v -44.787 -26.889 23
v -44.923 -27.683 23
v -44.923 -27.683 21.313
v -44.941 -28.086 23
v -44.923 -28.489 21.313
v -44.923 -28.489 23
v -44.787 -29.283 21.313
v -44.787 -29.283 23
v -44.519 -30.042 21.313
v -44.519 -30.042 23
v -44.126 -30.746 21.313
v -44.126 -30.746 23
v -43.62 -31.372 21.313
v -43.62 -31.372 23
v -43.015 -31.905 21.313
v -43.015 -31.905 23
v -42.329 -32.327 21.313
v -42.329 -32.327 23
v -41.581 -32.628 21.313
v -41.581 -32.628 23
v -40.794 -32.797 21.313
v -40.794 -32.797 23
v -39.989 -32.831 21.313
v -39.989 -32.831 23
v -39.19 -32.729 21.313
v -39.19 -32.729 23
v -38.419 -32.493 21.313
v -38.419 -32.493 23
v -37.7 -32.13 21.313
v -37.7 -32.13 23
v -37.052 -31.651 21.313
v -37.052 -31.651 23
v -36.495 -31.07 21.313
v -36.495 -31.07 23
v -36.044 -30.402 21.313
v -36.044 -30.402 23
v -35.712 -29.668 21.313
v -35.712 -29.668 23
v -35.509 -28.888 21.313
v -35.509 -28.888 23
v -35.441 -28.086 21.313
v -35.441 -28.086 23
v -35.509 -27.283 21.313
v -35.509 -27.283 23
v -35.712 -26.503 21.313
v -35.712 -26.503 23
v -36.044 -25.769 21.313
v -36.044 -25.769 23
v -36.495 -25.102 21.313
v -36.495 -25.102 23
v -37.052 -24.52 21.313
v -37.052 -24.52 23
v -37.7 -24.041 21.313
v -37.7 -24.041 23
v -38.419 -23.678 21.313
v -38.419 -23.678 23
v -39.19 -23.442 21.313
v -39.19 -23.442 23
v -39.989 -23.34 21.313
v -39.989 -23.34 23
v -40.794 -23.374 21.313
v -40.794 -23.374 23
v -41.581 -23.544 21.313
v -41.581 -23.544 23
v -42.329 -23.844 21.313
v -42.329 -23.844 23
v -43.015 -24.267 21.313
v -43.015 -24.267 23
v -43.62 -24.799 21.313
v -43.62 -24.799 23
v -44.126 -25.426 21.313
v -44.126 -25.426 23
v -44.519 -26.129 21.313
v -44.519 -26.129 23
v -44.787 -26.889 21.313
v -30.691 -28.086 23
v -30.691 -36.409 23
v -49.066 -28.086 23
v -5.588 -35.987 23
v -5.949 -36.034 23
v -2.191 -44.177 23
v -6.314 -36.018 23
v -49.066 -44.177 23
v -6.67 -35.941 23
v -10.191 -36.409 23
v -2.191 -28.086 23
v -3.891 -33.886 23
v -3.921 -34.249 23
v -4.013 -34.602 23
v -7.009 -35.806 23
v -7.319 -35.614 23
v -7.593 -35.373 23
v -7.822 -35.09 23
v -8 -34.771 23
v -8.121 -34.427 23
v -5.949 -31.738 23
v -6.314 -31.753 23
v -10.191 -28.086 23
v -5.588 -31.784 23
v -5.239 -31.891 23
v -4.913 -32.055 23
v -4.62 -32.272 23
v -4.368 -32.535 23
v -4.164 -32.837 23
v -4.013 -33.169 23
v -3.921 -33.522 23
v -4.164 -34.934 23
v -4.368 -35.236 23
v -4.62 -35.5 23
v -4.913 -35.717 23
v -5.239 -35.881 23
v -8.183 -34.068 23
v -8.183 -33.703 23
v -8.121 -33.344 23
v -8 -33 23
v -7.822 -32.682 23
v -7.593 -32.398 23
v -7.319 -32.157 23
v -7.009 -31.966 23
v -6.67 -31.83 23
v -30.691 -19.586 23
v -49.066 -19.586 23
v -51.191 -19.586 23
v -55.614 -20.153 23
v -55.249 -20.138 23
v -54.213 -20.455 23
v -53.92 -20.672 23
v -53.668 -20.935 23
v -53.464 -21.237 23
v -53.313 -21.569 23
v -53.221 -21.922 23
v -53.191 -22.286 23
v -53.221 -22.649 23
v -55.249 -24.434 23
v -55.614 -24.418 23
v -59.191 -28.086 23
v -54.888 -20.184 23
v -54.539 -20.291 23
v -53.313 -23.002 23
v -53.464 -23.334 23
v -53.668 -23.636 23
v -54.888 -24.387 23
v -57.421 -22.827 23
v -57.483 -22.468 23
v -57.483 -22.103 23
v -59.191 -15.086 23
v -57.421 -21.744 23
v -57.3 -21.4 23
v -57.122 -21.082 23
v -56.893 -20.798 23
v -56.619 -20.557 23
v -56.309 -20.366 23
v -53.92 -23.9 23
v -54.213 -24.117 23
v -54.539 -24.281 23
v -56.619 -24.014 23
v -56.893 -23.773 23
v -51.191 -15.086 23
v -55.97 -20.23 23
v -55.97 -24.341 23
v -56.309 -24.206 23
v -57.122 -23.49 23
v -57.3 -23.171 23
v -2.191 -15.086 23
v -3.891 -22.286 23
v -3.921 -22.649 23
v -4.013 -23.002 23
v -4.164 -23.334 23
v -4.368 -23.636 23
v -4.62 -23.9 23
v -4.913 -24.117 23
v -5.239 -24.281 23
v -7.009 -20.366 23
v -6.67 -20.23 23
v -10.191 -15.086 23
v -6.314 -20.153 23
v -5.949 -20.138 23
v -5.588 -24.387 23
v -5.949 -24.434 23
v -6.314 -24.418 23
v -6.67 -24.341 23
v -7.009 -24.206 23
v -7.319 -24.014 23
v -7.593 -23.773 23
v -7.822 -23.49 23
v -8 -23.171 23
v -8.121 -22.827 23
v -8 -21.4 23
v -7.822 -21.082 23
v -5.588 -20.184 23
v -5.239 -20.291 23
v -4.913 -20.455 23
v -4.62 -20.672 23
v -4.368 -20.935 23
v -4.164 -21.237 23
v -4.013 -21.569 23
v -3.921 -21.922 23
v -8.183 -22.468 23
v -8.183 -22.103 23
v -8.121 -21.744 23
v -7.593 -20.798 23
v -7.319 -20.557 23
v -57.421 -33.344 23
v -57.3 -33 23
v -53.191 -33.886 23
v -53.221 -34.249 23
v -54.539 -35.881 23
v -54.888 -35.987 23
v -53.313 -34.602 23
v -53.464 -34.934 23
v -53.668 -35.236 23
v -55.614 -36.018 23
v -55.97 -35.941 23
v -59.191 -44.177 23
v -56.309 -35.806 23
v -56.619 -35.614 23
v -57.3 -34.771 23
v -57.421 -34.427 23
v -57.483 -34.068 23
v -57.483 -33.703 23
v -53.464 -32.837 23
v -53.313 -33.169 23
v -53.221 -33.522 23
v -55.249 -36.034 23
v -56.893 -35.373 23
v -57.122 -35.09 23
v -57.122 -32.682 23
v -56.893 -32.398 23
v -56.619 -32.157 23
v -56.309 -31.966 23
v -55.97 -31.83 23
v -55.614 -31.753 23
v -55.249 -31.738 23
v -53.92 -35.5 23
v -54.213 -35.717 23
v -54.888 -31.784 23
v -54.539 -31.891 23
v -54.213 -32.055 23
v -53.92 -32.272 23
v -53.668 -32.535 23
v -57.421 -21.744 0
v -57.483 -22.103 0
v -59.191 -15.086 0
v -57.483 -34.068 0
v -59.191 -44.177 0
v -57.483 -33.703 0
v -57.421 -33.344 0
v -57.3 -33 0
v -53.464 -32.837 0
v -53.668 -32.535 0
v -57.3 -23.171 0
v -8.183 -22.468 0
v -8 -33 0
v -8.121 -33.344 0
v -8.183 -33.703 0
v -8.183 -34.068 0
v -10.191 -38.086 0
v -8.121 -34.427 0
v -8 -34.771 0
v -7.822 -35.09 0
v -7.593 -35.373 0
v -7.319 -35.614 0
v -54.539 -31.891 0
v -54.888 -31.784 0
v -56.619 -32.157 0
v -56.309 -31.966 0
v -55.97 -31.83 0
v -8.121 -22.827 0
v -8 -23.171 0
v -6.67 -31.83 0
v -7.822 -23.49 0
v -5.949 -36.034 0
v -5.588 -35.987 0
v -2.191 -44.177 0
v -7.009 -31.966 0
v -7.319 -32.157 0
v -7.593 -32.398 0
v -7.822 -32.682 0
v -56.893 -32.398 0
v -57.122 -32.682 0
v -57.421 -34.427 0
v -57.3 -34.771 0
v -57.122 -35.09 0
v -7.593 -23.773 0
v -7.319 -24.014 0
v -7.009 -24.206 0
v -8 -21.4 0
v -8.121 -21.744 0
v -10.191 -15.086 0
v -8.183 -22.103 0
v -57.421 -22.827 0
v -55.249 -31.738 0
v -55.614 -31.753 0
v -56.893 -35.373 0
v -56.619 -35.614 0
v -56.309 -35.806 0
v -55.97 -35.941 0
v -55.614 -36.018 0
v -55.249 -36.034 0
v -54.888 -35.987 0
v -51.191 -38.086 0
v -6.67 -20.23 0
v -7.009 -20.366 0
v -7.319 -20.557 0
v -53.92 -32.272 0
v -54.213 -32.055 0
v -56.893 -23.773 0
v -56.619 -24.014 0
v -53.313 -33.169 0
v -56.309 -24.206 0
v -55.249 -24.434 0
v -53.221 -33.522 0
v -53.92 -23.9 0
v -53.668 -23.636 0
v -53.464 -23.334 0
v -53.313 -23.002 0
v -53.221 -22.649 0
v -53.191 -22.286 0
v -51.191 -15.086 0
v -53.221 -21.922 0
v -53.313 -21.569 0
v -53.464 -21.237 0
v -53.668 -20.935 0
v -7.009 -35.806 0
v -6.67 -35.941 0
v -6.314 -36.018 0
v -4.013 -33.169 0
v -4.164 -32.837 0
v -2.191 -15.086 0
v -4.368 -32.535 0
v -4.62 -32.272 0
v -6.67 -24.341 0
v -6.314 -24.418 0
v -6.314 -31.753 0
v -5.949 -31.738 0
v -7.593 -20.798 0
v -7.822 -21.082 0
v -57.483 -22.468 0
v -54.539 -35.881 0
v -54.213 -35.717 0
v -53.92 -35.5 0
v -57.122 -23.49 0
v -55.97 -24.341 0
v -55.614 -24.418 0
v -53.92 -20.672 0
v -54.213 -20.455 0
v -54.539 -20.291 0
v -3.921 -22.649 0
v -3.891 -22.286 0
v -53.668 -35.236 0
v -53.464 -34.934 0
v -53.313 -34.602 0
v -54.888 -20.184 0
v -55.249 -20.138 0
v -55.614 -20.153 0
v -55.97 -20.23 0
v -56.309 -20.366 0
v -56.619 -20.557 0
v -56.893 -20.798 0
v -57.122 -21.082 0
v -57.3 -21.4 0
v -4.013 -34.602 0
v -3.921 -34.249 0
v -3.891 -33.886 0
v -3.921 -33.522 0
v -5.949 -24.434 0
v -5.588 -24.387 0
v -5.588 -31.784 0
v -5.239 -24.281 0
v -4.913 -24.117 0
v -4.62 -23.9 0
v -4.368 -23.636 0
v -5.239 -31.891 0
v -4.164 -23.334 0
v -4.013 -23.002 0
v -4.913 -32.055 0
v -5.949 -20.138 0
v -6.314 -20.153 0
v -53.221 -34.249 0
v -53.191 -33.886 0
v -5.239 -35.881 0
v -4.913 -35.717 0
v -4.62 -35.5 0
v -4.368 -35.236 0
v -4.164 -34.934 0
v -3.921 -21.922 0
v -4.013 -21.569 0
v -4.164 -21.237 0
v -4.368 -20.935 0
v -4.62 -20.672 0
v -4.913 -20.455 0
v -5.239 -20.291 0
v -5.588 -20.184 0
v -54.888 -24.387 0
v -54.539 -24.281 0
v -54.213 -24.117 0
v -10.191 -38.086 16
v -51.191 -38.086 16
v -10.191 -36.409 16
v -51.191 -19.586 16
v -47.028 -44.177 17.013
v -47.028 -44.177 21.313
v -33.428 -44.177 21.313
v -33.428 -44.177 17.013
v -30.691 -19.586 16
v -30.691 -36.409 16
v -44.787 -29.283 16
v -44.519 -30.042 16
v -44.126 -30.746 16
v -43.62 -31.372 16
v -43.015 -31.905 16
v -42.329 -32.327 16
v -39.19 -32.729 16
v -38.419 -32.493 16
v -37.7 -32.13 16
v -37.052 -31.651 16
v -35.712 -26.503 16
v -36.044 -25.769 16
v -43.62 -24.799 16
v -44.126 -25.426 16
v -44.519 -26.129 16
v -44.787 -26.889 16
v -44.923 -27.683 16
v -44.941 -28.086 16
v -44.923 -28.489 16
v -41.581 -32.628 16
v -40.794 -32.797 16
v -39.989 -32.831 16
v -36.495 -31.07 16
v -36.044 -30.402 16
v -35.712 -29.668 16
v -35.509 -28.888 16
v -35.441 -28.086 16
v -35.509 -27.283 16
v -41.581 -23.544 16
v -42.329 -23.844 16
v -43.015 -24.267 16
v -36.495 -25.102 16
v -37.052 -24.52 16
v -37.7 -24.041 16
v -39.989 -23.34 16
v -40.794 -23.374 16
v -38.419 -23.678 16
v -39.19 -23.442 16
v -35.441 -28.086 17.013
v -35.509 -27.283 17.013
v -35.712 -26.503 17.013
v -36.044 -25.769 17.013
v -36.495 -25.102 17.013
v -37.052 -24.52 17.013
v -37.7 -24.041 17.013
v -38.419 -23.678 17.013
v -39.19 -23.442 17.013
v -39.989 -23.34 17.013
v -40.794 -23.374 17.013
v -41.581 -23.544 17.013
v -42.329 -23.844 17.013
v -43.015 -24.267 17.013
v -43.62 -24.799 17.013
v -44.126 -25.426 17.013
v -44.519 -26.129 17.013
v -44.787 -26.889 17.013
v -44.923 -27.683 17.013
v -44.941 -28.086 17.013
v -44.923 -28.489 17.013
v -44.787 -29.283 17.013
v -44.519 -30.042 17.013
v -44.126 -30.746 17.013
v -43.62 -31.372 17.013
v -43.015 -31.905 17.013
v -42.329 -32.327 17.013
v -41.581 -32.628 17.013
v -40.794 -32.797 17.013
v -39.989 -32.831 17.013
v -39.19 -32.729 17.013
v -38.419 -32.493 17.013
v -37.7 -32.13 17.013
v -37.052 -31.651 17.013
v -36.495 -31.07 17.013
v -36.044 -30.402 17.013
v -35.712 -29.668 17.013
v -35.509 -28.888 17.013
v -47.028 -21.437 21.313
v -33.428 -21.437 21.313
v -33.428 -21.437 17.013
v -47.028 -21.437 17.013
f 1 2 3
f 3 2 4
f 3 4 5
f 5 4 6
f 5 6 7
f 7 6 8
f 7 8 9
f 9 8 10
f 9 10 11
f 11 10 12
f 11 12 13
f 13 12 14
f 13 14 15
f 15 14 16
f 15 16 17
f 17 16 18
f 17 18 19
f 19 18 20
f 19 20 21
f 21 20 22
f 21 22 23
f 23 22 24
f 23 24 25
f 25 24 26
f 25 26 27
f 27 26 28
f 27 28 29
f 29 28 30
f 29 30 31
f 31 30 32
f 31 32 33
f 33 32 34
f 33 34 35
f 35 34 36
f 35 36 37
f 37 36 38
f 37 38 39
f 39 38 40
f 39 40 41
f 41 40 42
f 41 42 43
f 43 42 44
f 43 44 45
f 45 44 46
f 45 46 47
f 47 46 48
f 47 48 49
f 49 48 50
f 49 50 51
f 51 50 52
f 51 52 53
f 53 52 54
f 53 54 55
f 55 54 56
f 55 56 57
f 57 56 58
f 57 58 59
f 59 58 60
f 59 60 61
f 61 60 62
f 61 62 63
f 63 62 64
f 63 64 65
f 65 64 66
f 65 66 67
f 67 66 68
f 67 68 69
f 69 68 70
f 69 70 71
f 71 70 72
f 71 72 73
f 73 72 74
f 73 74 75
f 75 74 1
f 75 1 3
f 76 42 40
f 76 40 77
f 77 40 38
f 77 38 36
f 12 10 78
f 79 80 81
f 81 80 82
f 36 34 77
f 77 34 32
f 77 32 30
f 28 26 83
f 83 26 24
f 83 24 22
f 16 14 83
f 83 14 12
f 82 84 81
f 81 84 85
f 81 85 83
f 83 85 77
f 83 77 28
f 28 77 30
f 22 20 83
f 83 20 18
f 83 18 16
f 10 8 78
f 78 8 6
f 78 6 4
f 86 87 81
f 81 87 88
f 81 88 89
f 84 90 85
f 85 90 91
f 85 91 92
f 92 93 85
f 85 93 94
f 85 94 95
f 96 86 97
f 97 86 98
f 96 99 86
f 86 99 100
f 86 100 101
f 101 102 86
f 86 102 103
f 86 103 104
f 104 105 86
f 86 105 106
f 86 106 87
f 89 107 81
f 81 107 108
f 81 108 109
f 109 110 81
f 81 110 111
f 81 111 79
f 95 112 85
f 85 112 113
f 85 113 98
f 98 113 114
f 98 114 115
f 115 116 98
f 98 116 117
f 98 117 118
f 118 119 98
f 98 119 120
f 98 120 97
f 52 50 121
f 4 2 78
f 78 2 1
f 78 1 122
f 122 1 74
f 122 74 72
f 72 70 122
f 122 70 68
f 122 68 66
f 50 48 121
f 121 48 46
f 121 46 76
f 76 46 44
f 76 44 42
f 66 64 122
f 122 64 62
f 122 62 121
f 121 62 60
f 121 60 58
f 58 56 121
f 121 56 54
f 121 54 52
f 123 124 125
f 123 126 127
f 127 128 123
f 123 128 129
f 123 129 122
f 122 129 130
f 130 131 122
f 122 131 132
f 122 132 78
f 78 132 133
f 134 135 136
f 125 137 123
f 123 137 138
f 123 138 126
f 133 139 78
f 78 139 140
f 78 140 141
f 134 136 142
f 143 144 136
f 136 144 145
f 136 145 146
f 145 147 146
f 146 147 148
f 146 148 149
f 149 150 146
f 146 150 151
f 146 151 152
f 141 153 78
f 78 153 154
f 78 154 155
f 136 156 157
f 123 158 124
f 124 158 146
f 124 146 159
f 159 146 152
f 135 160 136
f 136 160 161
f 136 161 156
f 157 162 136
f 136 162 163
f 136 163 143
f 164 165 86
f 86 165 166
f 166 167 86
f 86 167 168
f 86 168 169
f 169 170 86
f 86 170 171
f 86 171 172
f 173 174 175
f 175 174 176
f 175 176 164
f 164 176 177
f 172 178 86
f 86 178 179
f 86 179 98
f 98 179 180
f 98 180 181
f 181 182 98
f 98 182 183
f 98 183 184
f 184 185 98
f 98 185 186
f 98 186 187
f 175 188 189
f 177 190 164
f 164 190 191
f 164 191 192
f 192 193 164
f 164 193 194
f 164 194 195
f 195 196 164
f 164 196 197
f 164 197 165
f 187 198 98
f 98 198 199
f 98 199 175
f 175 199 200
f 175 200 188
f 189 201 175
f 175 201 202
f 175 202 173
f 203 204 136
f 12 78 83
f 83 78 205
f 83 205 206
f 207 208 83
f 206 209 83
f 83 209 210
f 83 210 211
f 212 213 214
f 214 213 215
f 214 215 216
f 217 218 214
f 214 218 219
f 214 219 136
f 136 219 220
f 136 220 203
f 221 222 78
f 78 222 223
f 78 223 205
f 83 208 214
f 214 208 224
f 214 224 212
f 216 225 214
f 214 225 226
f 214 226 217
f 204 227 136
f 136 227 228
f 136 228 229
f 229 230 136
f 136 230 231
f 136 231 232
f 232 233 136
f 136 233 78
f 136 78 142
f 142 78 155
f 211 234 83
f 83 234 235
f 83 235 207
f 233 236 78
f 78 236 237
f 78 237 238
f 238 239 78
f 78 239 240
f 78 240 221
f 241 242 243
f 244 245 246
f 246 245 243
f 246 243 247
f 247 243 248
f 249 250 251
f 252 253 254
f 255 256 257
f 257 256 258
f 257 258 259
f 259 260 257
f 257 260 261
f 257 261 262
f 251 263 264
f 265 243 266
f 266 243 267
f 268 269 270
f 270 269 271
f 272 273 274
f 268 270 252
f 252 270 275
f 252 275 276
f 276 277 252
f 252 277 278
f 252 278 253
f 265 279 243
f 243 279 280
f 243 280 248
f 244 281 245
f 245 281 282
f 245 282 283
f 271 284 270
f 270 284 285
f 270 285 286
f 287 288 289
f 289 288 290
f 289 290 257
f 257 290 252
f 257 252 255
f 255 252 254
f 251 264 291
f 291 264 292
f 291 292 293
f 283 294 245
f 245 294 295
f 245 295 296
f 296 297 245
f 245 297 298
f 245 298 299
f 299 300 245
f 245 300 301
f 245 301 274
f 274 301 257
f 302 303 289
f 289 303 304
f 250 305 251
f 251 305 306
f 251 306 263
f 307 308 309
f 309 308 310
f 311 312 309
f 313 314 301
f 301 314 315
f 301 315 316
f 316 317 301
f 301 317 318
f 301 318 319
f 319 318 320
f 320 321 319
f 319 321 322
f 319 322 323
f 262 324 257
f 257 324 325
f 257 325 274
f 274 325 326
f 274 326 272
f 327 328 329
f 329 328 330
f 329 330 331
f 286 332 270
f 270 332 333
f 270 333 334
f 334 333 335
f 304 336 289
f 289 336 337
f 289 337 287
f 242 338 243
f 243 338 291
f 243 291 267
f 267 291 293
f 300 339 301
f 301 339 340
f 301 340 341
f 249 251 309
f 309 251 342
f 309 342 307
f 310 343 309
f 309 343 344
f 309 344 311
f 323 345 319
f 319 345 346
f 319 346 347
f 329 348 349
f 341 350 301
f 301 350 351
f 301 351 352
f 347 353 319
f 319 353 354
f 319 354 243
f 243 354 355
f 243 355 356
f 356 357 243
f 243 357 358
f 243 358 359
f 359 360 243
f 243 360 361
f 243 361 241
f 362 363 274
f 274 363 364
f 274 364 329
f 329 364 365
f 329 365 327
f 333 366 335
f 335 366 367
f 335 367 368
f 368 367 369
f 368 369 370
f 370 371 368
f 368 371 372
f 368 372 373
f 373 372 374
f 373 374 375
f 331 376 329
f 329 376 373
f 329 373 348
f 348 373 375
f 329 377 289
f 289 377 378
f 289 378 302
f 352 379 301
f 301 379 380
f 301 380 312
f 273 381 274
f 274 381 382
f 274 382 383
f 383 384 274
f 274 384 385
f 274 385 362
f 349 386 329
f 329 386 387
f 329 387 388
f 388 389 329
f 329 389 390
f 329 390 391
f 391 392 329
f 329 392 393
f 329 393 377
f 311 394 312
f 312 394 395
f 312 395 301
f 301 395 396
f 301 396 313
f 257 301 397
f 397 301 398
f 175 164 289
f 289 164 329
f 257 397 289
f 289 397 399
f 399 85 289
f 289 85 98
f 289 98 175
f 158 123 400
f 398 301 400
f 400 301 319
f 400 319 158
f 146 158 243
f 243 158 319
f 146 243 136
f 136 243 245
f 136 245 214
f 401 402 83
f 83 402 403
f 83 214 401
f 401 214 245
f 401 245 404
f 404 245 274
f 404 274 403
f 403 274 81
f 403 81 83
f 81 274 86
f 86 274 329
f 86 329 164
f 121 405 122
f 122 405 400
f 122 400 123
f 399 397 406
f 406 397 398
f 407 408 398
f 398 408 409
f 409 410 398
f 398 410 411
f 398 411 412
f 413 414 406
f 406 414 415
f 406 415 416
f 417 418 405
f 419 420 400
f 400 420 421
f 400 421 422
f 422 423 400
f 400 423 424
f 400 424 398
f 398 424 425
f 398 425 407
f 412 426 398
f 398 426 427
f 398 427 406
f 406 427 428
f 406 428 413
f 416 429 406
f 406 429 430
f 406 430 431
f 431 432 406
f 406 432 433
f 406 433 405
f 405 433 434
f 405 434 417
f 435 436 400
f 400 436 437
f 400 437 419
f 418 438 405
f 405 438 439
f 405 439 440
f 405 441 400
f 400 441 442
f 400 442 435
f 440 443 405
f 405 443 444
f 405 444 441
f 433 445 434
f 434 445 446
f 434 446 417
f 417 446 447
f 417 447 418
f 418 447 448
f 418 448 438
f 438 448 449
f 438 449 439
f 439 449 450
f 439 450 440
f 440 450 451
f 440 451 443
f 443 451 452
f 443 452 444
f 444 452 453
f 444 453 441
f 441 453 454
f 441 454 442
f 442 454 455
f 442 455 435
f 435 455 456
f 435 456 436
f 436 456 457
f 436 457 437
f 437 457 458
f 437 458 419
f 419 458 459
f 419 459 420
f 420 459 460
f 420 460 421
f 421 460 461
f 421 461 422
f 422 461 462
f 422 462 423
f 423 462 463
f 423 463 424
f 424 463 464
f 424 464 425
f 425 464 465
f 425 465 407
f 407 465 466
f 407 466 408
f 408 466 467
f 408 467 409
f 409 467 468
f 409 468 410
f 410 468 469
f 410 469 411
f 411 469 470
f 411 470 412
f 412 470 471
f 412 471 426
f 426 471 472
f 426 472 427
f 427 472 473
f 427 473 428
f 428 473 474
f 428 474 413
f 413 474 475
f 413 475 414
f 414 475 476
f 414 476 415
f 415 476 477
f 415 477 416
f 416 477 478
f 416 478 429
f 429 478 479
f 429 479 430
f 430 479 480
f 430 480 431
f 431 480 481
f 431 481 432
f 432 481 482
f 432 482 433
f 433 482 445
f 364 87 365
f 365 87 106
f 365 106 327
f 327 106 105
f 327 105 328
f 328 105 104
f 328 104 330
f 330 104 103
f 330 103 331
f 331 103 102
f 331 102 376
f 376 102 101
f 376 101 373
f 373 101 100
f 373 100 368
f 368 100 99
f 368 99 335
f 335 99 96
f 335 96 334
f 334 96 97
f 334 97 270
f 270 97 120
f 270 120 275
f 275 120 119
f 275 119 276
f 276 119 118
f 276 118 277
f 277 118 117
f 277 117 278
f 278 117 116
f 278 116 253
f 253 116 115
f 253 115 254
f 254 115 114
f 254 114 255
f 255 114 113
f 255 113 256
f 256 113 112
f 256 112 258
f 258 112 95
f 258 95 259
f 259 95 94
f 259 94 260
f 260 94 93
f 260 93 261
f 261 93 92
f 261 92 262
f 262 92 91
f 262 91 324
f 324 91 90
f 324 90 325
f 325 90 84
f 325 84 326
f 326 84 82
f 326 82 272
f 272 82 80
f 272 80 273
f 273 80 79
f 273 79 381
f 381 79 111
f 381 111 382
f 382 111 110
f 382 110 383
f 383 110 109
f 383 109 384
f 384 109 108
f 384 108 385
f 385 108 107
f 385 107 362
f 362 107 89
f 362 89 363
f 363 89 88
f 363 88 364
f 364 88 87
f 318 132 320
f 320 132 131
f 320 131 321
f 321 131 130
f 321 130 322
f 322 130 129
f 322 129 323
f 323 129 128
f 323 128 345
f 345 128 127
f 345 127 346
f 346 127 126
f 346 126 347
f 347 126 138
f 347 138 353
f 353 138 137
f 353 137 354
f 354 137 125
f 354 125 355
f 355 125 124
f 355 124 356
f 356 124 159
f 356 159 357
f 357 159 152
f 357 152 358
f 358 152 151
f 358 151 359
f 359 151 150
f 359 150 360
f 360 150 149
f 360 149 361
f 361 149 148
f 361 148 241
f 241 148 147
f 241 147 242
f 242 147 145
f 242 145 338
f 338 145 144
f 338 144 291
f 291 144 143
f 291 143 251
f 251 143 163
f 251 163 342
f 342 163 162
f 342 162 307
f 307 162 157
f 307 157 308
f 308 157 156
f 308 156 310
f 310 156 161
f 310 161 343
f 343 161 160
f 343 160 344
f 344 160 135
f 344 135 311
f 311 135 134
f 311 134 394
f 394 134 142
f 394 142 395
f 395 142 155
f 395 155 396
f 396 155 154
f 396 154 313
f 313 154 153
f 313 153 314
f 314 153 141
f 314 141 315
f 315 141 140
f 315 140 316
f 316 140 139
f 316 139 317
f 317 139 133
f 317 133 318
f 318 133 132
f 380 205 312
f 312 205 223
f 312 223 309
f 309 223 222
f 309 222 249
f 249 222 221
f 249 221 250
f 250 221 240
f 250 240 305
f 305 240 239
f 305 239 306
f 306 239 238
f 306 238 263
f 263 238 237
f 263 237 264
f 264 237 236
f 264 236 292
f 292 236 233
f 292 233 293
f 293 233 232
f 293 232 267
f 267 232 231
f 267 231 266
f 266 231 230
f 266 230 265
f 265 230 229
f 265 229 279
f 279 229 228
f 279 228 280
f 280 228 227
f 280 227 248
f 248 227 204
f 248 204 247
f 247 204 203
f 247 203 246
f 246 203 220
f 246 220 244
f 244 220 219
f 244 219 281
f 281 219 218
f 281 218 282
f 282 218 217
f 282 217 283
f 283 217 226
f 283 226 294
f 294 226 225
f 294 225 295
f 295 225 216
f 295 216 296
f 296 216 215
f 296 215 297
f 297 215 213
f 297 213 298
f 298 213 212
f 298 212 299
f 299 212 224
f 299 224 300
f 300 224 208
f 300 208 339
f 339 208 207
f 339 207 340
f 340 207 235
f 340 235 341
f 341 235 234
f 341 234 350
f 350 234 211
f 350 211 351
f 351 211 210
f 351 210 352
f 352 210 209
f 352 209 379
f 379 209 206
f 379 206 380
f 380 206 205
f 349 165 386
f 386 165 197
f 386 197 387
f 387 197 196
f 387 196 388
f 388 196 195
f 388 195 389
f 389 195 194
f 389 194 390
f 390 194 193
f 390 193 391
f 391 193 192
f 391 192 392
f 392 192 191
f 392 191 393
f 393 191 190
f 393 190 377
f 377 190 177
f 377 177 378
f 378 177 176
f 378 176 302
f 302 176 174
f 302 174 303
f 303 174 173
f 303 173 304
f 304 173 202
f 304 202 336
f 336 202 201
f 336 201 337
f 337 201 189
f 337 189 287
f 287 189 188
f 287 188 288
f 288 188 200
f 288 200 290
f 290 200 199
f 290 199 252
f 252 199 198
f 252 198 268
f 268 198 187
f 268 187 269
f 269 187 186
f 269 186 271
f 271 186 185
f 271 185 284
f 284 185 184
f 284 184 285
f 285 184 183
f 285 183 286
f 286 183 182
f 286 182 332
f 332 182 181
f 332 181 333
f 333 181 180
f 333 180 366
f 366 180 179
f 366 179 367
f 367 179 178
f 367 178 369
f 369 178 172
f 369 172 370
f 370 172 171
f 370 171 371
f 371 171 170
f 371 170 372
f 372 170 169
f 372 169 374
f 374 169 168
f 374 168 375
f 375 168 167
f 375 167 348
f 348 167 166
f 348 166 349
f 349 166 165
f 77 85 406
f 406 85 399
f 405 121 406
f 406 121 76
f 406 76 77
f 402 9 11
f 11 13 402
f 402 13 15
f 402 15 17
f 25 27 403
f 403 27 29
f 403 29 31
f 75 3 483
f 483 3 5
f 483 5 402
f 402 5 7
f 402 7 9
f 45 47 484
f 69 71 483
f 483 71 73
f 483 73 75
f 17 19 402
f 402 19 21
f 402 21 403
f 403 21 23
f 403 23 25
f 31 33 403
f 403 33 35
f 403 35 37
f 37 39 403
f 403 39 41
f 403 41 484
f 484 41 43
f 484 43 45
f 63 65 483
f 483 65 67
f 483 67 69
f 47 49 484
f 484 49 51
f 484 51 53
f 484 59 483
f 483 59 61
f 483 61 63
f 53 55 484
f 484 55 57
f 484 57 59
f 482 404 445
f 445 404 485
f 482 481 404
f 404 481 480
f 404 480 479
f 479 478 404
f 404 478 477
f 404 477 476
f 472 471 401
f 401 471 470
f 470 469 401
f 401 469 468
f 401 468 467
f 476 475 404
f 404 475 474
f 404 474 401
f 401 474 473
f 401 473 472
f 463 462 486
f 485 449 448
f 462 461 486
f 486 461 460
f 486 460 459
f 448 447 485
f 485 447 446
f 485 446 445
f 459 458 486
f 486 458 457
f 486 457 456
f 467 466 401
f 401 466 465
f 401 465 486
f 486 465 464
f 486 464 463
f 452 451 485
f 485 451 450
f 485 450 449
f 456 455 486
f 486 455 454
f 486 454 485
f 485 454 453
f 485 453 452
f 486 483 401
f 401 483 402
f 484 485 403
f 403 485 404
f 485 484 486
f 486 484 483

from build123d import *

# Parameters (mm, degrees)
EXTRUDE_1_DEPTH     = 23
SKETCH_5_R          = 2.7
SKETCH_5_R_2        = 4.75
EXTRUDE_6_DEPTH     = 7
SKETCH_6_R          = 2.15
CUT_EXTRUDE_2_DEPTH = 78.35709986
SKETCH_8_W          = 20.5
SKETCH_8_H          = 16.823085553
CUT_EXTRUDE_4_DEPTH = 7
SKETCH_14_W         = 13.6
SKETCH_14_H         = 4.3
CUT_EXTRUDE_7_DEPTH = 22.74


with BuildPart() as part:
    # Эскиз1 → Бобышка-Вытянуть1 (new body)
    with BuildSketch(Plane.XY):
        Polygon((-59.190561798, -40.176897727), (-59.190561798, -15.085730337), (-51.190561798, -15.085730337), (-51.190561798, -38.085730337), (-10.190561798, -38.085730337), (-10.190561798, -15.085730337), (-2.190561798, -15.085730337), (-2.190561798, -38.085730337), (-2.190561798, -44.176897727), (-59.190561798, -44.176897727), align=None)
    extrude(amount=EXTRUDE_1_DEPTH)

    # Эскиз5 → Бобышка-Вытянуть6 (add)
    with BuildSketch(Plane.XY.offset(23)):
        Polygon((-21.190561798, -19.58573034), (-51.190561798, -19.58573034), (-51.190561798, -34.983929743), (-51.190561798, -38.085730337), (-10.190561798, -38.085730337), (-10.190561798, -34.983929743), (-10.190561798, -19.58573034), align=None)
        with Locations((-21.190561798, -28.085730337)):
            Circle(SKETCH_5_R, mode=Mode.SUBTRACT)
        with Locations(Location((-40.190561798, -28.085730337, 0), (0, 0, 180))):
            Circle(SKETCH_5_R_2, mode=Mode.SUBTRACT)
    extrude(amount=-EXTRUDE_6_DEPTH)

    # Эскиз6 → Вырез-Вытянуть2 (cut, through all)
    with BuildSketch(Plane.XY.offset(23)):
        with Locations((-6.040561798, -33.885730337)):
            Circle(SKETCH_6_R)
        with Locations((-6.040561798, -22.285730337)):
            Circle(SKETCH_6_R)
        with Locations((-55.340561798, -33.885730337)):
            Circle(SKETCH_6_R)
        with Locations((-55.340561798, -22.285730337)):
            Circle(SKETCH_6_R)
    extrude(amount=-CUT_EXTRUDE_2_DEPTH, mode=Mode.SUBTRACT)

    # Эскиз8 → Вырез-Вытянуть4 (cut)
    with BuildSketch(Plane.XY.offset(23)):
        with Locations((-20.440561798, -27.997273117)):
            Rectangle(SKETCH_8_W, SKETCH_8_H)
    extrude(amount=-CUT_EXTRUDE_4_DEPTH, mode=Mode.SUBTRACT)

    # Эскиз14 → Вырез-Вытянуть7 (cut)
    with BuildSketch(Plane(origin=(0, -44.176897727, 0), x_dir=(-1, 0, 0), z_dir=(0, -1, 0))):
        with Locations((40.227814592, -19.162885498)):
            Rectangle(SKETCH_14_W, SKETCH_14_H)
    extrude(amount=-CUT_EXTRUDE_7_DEPTH, mode=Mode.SUBTRACT)


solid = part.part
